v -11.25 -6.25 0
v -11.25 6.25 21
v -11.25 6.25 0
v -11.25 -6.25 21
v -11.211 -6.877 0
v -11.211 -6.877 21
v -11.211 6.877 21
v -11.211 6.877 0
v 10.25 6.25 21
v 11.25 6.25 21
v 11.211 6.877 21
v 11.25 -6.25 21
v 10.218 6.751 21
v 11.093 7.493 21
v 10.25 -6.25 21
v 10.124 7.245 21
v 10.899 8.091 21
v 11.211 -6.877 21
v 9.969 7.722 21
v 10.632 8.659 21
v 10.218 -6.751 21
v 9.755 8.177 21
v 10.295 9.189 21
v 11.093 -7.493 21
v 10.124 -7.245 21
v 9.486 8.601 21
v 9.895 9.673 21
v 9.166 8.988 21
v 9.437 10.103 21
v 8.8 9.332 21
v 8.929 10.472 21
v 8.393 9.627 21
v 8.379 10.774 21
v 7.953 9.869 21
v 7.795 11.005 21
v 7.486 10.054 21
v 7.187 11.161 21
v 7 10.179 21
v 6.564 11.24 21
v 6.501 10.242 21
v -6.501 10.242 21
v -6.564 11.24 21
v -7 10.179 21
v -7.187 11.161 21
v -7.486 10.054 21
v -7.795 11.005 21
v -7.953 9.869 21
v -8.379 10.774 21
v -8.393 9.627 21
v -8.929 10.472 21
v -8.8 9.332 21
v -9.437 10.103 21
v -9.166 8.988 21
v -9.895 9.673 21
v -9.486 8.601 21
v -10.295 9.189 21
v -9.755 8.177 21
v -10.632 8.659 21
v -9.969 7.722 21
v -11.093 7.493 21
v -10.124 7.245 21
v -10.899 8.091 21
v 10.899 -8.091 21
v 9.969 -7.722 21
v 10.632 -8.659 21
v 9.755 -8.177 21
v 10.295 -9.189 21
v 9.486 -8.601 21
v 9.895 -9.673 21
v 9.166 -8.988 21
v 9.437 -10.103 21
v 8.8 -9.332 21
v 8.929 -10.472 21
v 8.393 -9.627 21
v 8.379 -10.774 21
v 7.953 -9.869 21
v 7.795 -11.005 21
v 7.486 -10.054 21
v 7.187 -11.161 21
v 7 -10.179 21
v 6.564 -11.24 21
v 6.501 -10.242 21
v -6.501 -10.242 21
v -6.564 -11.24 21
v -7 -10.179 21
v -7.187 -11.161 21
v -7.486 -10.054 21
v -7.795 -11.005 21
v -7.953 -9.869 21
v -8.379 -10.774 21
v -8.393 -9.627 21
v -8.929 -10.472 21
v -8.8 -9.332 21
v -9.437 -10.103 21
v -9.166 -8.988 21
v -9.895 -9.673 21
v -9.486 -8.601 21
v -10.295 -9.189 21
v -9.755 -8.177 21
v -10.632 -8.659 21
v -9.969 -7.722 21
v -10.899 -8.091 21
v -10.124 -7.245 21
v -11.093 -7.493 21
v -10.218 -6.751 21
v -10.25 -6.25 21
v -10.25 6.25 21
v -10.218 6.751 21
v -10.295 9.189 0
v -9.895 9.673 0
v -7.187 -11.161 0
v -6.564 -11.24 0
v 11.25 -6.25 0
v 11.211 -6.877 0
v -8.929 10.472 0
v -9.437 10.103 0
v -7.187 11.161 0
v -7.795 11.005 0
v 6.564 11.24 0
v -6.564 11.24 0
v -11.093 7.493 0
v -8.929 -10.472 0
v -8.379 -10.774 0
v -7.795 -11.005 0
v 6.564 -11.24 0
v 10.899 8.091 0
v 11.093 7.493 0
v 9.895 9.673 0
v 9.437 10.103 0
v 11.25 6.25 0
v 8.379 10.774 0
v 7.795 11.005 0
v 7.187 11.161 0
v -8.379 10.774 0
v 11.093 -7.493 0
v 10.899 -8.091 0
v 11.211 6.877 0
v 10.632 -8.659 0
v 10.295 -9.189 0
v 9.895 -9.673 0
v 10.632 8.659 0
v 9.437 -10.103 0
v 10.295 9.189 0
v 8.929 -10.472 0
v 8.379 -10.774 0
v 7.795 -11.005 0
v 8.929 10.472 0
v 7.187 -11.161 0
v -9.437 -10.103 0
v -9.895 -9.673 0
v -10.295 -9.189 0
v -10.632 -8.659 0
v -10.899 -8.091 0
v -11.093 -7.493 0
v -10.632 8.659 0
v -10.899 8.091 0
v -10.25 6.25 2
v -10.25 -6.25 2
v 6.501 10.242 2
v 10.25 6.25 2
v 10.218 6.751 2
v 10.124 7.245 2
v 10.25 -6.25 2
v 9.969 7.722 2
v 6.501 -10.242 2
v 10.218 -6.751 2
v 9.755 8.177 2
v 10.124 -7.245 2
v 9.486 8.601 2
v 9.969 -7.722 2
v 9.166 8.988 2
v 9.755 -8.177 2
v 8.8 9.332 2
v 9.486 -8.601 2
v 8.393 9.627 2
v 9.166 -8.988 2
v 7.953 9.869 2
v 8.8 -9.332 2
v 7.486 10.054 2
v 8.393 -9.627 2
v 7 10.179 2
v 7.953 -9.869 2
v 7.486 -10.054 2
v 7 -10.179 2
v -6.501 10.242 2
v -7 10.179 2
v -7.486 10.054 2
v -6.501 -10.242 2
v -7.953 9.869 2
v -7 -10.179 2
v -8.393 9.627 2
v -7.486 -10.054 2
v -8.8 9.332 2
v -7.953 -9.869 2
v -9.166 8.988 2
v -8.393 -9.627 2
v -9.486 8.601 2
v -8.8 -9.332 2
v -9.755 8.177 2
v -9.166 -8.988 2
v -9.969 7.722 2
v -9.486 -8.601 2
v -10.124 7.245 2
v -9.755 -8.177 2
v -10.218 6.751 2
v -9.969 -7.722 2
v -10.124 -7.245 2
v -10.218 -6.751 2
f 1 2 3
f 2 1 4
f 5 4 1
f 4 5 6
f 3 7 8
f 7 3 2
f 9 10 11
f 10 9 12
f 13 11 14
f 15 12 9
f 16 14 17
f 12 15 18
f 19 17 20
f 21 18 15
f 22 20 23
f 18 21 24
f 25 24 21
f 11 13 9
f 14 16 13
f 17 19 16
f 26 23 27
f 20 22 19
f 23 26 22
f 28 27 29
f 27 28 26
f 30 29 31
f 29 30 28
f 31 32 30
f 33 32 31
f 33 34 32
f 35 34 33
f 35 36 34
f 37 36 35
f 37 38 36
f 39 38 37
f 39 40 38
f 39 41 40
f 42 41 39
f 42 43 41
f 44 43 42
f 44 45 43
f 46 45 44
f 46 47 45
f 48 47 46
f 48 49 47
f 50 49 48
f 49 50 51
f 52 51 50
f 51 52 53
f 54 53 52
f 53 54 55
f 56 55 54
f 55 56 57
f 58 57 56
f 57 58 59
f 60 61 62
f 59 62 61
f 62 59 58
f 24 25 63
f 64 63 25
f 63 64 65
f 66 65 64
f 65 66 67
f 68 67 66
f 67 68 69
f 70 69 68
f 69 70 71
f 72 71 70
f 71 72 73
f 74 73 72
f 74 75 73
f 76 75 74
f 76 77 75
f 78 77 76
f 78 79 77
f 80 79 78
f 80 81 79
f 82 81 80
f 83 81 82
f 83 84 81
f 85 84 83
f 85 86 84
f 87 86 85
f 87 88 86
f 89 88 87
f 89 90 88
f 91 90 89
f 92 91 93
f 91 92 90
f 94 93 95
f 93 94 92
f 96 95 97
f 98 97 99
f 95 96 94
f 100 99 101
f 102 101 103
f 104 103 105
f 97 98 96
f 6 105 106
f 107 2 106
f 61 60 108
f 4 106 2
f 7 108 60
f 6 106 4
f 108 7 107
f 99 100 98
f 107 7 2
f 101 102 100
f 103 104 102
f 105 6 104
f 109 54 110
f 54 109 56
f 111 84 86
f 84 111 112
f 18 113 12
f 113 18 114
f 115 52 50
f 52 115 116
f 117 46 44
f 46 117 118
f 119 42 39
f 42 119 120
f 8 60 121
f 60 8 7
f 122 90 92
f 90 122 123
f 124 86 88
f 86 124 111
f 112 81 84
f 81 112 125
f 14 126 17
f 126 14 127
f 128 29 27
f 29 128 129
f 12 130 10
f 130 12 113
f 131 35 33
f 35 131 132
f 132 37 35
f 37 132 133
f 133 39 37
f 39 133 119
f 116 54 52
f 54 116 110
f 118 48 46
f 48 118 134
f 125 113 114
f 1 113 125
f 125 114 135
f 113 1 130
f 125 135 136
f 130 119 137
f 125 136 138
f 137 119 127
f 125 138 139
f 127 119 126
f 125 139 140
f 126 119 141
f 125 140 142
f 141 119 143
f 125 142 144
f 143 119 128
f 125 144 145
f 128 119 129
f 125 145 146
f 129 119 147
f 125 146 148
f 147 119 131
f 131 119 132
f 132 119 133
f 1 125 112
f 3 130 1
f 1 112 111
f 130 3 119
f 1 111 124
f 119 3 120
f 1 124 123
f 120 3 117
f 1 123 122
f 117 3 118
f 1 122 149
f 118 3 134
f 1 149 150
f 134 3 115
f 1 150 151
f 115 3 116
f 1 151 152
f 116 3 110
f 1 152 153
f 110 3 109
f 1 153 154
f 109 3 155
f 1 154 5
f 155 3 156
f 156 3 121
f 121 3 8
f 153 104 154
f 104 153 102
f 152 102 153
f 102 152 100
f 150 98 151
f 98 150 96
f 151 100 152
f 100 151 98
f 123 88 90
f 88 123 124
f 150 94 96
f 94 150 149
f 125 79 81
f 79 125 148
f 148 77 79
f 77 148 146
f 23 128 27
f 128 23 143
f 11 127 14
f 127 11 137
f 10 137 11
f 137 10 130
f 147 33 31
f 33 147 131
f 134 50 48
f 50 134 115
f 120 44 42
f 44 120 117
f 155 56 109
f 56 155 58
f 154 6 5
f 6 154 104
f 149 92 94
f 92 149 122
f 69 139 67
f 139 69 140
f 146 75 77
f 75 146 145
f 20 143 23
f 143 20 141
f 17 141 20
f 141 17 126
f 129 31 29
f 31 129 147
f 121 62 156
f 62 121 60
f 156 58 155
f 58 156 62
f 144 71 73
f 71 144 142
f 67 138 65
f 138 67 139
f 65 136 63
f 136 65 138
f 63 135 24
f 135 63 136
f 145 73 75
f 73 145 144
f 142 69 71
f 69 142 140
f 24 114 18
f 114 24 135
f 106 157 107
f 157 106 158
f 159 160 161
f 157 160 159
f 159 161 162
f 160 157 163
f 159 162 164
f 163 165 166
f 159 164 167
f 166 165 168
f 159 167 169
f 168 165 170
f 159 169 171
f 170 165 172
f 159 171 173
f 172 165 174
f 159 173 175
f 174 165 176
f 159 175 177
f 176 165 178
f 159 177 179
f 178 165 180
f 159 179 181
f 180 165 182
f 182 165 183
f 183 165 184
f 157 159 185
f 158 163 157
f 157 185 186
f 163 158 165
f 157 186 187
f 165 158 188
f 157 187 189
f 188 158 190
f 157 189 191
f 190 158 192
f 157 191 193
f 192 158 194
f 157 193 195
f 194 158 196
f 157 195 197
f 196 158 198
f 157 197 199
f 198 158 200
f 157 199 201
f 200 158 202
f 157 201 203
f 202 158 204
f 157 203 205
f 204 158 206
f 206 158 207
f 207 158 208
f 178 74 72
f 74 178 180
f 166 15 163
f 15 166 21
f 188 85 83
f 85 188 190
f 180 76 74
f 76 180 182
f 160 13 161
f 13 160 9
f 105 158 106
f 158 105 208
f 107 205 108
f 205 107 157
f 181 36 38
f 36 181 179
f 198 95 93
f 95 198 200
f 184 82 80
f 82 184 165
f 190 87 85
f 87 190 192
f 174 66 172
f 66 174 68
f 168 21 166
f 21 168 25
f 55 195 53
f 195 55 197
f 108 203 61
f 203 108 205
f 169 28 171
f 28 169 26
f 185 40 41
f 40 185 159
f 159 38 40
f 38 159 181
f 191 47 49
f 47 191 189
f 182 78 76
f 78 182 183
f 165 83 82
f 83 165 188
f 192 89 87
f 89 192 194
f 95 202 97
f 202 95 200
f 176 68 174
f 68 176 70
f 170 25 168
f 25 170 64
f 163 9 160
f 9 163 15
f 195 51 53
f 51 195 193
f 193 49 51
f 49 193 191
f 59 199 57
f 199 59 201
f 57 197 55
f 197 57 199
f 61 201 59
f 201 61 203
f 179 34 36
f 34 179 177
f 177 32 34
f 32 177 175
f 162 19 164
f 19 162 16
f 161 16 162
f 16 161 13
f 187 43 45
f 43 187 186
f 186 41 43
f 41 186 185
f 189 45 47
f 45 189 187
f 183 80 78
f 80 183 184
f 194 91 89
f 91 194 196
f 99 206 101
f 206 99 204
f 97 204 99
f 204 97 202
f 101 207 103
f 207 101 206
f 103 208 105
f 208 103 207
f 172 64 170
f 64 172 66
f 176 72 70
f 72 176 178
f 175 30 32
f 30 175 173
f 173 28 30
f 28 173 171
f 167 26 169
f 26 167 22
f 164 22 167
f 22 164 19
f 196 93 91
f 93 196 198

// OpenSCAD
$fn = 50;


difference() {
	union() {
		hull() {
			translate(v = [-6.2500000000, 6.2500000000, 0]) {
				cylinder(h = 21, r = 5);
			}
			translate(v = [6.2500000000, 6.2500000000, 0]) {
				cylinder(h = 21, r = 5);
			}
			translate(v = [-6.2500000000, -6.2500000000, 0]) {
				cylinder(h = 21, r = 5);
			}
			translate(v = [6.2500000000, -6.2500000000, 0]) {
				cylinder(h = 21, r = 5);
			}
		}
	}
	union() {
		translate(v = [0, 0, 2]) {
			hull() {
				translate(v = [-6.2500000000, 6.2500000000, 0]) {
					cylinder(h = 19, r = 4);
				}
				translate(v = [6.2500000000, 6.2500000000, 0]) {
					cylinder(h = 19, r = 4);
				}
				translate(v = [-6.2500000000, -6.2500000000, 0]) {
					cylinder(h = 19, r = 4);
				}
				translate(v = [6.2500000000, -6.2500000000, 0]) {
					cylinder(h = 19, r = 4);
				}
			}
		}
	}
}
